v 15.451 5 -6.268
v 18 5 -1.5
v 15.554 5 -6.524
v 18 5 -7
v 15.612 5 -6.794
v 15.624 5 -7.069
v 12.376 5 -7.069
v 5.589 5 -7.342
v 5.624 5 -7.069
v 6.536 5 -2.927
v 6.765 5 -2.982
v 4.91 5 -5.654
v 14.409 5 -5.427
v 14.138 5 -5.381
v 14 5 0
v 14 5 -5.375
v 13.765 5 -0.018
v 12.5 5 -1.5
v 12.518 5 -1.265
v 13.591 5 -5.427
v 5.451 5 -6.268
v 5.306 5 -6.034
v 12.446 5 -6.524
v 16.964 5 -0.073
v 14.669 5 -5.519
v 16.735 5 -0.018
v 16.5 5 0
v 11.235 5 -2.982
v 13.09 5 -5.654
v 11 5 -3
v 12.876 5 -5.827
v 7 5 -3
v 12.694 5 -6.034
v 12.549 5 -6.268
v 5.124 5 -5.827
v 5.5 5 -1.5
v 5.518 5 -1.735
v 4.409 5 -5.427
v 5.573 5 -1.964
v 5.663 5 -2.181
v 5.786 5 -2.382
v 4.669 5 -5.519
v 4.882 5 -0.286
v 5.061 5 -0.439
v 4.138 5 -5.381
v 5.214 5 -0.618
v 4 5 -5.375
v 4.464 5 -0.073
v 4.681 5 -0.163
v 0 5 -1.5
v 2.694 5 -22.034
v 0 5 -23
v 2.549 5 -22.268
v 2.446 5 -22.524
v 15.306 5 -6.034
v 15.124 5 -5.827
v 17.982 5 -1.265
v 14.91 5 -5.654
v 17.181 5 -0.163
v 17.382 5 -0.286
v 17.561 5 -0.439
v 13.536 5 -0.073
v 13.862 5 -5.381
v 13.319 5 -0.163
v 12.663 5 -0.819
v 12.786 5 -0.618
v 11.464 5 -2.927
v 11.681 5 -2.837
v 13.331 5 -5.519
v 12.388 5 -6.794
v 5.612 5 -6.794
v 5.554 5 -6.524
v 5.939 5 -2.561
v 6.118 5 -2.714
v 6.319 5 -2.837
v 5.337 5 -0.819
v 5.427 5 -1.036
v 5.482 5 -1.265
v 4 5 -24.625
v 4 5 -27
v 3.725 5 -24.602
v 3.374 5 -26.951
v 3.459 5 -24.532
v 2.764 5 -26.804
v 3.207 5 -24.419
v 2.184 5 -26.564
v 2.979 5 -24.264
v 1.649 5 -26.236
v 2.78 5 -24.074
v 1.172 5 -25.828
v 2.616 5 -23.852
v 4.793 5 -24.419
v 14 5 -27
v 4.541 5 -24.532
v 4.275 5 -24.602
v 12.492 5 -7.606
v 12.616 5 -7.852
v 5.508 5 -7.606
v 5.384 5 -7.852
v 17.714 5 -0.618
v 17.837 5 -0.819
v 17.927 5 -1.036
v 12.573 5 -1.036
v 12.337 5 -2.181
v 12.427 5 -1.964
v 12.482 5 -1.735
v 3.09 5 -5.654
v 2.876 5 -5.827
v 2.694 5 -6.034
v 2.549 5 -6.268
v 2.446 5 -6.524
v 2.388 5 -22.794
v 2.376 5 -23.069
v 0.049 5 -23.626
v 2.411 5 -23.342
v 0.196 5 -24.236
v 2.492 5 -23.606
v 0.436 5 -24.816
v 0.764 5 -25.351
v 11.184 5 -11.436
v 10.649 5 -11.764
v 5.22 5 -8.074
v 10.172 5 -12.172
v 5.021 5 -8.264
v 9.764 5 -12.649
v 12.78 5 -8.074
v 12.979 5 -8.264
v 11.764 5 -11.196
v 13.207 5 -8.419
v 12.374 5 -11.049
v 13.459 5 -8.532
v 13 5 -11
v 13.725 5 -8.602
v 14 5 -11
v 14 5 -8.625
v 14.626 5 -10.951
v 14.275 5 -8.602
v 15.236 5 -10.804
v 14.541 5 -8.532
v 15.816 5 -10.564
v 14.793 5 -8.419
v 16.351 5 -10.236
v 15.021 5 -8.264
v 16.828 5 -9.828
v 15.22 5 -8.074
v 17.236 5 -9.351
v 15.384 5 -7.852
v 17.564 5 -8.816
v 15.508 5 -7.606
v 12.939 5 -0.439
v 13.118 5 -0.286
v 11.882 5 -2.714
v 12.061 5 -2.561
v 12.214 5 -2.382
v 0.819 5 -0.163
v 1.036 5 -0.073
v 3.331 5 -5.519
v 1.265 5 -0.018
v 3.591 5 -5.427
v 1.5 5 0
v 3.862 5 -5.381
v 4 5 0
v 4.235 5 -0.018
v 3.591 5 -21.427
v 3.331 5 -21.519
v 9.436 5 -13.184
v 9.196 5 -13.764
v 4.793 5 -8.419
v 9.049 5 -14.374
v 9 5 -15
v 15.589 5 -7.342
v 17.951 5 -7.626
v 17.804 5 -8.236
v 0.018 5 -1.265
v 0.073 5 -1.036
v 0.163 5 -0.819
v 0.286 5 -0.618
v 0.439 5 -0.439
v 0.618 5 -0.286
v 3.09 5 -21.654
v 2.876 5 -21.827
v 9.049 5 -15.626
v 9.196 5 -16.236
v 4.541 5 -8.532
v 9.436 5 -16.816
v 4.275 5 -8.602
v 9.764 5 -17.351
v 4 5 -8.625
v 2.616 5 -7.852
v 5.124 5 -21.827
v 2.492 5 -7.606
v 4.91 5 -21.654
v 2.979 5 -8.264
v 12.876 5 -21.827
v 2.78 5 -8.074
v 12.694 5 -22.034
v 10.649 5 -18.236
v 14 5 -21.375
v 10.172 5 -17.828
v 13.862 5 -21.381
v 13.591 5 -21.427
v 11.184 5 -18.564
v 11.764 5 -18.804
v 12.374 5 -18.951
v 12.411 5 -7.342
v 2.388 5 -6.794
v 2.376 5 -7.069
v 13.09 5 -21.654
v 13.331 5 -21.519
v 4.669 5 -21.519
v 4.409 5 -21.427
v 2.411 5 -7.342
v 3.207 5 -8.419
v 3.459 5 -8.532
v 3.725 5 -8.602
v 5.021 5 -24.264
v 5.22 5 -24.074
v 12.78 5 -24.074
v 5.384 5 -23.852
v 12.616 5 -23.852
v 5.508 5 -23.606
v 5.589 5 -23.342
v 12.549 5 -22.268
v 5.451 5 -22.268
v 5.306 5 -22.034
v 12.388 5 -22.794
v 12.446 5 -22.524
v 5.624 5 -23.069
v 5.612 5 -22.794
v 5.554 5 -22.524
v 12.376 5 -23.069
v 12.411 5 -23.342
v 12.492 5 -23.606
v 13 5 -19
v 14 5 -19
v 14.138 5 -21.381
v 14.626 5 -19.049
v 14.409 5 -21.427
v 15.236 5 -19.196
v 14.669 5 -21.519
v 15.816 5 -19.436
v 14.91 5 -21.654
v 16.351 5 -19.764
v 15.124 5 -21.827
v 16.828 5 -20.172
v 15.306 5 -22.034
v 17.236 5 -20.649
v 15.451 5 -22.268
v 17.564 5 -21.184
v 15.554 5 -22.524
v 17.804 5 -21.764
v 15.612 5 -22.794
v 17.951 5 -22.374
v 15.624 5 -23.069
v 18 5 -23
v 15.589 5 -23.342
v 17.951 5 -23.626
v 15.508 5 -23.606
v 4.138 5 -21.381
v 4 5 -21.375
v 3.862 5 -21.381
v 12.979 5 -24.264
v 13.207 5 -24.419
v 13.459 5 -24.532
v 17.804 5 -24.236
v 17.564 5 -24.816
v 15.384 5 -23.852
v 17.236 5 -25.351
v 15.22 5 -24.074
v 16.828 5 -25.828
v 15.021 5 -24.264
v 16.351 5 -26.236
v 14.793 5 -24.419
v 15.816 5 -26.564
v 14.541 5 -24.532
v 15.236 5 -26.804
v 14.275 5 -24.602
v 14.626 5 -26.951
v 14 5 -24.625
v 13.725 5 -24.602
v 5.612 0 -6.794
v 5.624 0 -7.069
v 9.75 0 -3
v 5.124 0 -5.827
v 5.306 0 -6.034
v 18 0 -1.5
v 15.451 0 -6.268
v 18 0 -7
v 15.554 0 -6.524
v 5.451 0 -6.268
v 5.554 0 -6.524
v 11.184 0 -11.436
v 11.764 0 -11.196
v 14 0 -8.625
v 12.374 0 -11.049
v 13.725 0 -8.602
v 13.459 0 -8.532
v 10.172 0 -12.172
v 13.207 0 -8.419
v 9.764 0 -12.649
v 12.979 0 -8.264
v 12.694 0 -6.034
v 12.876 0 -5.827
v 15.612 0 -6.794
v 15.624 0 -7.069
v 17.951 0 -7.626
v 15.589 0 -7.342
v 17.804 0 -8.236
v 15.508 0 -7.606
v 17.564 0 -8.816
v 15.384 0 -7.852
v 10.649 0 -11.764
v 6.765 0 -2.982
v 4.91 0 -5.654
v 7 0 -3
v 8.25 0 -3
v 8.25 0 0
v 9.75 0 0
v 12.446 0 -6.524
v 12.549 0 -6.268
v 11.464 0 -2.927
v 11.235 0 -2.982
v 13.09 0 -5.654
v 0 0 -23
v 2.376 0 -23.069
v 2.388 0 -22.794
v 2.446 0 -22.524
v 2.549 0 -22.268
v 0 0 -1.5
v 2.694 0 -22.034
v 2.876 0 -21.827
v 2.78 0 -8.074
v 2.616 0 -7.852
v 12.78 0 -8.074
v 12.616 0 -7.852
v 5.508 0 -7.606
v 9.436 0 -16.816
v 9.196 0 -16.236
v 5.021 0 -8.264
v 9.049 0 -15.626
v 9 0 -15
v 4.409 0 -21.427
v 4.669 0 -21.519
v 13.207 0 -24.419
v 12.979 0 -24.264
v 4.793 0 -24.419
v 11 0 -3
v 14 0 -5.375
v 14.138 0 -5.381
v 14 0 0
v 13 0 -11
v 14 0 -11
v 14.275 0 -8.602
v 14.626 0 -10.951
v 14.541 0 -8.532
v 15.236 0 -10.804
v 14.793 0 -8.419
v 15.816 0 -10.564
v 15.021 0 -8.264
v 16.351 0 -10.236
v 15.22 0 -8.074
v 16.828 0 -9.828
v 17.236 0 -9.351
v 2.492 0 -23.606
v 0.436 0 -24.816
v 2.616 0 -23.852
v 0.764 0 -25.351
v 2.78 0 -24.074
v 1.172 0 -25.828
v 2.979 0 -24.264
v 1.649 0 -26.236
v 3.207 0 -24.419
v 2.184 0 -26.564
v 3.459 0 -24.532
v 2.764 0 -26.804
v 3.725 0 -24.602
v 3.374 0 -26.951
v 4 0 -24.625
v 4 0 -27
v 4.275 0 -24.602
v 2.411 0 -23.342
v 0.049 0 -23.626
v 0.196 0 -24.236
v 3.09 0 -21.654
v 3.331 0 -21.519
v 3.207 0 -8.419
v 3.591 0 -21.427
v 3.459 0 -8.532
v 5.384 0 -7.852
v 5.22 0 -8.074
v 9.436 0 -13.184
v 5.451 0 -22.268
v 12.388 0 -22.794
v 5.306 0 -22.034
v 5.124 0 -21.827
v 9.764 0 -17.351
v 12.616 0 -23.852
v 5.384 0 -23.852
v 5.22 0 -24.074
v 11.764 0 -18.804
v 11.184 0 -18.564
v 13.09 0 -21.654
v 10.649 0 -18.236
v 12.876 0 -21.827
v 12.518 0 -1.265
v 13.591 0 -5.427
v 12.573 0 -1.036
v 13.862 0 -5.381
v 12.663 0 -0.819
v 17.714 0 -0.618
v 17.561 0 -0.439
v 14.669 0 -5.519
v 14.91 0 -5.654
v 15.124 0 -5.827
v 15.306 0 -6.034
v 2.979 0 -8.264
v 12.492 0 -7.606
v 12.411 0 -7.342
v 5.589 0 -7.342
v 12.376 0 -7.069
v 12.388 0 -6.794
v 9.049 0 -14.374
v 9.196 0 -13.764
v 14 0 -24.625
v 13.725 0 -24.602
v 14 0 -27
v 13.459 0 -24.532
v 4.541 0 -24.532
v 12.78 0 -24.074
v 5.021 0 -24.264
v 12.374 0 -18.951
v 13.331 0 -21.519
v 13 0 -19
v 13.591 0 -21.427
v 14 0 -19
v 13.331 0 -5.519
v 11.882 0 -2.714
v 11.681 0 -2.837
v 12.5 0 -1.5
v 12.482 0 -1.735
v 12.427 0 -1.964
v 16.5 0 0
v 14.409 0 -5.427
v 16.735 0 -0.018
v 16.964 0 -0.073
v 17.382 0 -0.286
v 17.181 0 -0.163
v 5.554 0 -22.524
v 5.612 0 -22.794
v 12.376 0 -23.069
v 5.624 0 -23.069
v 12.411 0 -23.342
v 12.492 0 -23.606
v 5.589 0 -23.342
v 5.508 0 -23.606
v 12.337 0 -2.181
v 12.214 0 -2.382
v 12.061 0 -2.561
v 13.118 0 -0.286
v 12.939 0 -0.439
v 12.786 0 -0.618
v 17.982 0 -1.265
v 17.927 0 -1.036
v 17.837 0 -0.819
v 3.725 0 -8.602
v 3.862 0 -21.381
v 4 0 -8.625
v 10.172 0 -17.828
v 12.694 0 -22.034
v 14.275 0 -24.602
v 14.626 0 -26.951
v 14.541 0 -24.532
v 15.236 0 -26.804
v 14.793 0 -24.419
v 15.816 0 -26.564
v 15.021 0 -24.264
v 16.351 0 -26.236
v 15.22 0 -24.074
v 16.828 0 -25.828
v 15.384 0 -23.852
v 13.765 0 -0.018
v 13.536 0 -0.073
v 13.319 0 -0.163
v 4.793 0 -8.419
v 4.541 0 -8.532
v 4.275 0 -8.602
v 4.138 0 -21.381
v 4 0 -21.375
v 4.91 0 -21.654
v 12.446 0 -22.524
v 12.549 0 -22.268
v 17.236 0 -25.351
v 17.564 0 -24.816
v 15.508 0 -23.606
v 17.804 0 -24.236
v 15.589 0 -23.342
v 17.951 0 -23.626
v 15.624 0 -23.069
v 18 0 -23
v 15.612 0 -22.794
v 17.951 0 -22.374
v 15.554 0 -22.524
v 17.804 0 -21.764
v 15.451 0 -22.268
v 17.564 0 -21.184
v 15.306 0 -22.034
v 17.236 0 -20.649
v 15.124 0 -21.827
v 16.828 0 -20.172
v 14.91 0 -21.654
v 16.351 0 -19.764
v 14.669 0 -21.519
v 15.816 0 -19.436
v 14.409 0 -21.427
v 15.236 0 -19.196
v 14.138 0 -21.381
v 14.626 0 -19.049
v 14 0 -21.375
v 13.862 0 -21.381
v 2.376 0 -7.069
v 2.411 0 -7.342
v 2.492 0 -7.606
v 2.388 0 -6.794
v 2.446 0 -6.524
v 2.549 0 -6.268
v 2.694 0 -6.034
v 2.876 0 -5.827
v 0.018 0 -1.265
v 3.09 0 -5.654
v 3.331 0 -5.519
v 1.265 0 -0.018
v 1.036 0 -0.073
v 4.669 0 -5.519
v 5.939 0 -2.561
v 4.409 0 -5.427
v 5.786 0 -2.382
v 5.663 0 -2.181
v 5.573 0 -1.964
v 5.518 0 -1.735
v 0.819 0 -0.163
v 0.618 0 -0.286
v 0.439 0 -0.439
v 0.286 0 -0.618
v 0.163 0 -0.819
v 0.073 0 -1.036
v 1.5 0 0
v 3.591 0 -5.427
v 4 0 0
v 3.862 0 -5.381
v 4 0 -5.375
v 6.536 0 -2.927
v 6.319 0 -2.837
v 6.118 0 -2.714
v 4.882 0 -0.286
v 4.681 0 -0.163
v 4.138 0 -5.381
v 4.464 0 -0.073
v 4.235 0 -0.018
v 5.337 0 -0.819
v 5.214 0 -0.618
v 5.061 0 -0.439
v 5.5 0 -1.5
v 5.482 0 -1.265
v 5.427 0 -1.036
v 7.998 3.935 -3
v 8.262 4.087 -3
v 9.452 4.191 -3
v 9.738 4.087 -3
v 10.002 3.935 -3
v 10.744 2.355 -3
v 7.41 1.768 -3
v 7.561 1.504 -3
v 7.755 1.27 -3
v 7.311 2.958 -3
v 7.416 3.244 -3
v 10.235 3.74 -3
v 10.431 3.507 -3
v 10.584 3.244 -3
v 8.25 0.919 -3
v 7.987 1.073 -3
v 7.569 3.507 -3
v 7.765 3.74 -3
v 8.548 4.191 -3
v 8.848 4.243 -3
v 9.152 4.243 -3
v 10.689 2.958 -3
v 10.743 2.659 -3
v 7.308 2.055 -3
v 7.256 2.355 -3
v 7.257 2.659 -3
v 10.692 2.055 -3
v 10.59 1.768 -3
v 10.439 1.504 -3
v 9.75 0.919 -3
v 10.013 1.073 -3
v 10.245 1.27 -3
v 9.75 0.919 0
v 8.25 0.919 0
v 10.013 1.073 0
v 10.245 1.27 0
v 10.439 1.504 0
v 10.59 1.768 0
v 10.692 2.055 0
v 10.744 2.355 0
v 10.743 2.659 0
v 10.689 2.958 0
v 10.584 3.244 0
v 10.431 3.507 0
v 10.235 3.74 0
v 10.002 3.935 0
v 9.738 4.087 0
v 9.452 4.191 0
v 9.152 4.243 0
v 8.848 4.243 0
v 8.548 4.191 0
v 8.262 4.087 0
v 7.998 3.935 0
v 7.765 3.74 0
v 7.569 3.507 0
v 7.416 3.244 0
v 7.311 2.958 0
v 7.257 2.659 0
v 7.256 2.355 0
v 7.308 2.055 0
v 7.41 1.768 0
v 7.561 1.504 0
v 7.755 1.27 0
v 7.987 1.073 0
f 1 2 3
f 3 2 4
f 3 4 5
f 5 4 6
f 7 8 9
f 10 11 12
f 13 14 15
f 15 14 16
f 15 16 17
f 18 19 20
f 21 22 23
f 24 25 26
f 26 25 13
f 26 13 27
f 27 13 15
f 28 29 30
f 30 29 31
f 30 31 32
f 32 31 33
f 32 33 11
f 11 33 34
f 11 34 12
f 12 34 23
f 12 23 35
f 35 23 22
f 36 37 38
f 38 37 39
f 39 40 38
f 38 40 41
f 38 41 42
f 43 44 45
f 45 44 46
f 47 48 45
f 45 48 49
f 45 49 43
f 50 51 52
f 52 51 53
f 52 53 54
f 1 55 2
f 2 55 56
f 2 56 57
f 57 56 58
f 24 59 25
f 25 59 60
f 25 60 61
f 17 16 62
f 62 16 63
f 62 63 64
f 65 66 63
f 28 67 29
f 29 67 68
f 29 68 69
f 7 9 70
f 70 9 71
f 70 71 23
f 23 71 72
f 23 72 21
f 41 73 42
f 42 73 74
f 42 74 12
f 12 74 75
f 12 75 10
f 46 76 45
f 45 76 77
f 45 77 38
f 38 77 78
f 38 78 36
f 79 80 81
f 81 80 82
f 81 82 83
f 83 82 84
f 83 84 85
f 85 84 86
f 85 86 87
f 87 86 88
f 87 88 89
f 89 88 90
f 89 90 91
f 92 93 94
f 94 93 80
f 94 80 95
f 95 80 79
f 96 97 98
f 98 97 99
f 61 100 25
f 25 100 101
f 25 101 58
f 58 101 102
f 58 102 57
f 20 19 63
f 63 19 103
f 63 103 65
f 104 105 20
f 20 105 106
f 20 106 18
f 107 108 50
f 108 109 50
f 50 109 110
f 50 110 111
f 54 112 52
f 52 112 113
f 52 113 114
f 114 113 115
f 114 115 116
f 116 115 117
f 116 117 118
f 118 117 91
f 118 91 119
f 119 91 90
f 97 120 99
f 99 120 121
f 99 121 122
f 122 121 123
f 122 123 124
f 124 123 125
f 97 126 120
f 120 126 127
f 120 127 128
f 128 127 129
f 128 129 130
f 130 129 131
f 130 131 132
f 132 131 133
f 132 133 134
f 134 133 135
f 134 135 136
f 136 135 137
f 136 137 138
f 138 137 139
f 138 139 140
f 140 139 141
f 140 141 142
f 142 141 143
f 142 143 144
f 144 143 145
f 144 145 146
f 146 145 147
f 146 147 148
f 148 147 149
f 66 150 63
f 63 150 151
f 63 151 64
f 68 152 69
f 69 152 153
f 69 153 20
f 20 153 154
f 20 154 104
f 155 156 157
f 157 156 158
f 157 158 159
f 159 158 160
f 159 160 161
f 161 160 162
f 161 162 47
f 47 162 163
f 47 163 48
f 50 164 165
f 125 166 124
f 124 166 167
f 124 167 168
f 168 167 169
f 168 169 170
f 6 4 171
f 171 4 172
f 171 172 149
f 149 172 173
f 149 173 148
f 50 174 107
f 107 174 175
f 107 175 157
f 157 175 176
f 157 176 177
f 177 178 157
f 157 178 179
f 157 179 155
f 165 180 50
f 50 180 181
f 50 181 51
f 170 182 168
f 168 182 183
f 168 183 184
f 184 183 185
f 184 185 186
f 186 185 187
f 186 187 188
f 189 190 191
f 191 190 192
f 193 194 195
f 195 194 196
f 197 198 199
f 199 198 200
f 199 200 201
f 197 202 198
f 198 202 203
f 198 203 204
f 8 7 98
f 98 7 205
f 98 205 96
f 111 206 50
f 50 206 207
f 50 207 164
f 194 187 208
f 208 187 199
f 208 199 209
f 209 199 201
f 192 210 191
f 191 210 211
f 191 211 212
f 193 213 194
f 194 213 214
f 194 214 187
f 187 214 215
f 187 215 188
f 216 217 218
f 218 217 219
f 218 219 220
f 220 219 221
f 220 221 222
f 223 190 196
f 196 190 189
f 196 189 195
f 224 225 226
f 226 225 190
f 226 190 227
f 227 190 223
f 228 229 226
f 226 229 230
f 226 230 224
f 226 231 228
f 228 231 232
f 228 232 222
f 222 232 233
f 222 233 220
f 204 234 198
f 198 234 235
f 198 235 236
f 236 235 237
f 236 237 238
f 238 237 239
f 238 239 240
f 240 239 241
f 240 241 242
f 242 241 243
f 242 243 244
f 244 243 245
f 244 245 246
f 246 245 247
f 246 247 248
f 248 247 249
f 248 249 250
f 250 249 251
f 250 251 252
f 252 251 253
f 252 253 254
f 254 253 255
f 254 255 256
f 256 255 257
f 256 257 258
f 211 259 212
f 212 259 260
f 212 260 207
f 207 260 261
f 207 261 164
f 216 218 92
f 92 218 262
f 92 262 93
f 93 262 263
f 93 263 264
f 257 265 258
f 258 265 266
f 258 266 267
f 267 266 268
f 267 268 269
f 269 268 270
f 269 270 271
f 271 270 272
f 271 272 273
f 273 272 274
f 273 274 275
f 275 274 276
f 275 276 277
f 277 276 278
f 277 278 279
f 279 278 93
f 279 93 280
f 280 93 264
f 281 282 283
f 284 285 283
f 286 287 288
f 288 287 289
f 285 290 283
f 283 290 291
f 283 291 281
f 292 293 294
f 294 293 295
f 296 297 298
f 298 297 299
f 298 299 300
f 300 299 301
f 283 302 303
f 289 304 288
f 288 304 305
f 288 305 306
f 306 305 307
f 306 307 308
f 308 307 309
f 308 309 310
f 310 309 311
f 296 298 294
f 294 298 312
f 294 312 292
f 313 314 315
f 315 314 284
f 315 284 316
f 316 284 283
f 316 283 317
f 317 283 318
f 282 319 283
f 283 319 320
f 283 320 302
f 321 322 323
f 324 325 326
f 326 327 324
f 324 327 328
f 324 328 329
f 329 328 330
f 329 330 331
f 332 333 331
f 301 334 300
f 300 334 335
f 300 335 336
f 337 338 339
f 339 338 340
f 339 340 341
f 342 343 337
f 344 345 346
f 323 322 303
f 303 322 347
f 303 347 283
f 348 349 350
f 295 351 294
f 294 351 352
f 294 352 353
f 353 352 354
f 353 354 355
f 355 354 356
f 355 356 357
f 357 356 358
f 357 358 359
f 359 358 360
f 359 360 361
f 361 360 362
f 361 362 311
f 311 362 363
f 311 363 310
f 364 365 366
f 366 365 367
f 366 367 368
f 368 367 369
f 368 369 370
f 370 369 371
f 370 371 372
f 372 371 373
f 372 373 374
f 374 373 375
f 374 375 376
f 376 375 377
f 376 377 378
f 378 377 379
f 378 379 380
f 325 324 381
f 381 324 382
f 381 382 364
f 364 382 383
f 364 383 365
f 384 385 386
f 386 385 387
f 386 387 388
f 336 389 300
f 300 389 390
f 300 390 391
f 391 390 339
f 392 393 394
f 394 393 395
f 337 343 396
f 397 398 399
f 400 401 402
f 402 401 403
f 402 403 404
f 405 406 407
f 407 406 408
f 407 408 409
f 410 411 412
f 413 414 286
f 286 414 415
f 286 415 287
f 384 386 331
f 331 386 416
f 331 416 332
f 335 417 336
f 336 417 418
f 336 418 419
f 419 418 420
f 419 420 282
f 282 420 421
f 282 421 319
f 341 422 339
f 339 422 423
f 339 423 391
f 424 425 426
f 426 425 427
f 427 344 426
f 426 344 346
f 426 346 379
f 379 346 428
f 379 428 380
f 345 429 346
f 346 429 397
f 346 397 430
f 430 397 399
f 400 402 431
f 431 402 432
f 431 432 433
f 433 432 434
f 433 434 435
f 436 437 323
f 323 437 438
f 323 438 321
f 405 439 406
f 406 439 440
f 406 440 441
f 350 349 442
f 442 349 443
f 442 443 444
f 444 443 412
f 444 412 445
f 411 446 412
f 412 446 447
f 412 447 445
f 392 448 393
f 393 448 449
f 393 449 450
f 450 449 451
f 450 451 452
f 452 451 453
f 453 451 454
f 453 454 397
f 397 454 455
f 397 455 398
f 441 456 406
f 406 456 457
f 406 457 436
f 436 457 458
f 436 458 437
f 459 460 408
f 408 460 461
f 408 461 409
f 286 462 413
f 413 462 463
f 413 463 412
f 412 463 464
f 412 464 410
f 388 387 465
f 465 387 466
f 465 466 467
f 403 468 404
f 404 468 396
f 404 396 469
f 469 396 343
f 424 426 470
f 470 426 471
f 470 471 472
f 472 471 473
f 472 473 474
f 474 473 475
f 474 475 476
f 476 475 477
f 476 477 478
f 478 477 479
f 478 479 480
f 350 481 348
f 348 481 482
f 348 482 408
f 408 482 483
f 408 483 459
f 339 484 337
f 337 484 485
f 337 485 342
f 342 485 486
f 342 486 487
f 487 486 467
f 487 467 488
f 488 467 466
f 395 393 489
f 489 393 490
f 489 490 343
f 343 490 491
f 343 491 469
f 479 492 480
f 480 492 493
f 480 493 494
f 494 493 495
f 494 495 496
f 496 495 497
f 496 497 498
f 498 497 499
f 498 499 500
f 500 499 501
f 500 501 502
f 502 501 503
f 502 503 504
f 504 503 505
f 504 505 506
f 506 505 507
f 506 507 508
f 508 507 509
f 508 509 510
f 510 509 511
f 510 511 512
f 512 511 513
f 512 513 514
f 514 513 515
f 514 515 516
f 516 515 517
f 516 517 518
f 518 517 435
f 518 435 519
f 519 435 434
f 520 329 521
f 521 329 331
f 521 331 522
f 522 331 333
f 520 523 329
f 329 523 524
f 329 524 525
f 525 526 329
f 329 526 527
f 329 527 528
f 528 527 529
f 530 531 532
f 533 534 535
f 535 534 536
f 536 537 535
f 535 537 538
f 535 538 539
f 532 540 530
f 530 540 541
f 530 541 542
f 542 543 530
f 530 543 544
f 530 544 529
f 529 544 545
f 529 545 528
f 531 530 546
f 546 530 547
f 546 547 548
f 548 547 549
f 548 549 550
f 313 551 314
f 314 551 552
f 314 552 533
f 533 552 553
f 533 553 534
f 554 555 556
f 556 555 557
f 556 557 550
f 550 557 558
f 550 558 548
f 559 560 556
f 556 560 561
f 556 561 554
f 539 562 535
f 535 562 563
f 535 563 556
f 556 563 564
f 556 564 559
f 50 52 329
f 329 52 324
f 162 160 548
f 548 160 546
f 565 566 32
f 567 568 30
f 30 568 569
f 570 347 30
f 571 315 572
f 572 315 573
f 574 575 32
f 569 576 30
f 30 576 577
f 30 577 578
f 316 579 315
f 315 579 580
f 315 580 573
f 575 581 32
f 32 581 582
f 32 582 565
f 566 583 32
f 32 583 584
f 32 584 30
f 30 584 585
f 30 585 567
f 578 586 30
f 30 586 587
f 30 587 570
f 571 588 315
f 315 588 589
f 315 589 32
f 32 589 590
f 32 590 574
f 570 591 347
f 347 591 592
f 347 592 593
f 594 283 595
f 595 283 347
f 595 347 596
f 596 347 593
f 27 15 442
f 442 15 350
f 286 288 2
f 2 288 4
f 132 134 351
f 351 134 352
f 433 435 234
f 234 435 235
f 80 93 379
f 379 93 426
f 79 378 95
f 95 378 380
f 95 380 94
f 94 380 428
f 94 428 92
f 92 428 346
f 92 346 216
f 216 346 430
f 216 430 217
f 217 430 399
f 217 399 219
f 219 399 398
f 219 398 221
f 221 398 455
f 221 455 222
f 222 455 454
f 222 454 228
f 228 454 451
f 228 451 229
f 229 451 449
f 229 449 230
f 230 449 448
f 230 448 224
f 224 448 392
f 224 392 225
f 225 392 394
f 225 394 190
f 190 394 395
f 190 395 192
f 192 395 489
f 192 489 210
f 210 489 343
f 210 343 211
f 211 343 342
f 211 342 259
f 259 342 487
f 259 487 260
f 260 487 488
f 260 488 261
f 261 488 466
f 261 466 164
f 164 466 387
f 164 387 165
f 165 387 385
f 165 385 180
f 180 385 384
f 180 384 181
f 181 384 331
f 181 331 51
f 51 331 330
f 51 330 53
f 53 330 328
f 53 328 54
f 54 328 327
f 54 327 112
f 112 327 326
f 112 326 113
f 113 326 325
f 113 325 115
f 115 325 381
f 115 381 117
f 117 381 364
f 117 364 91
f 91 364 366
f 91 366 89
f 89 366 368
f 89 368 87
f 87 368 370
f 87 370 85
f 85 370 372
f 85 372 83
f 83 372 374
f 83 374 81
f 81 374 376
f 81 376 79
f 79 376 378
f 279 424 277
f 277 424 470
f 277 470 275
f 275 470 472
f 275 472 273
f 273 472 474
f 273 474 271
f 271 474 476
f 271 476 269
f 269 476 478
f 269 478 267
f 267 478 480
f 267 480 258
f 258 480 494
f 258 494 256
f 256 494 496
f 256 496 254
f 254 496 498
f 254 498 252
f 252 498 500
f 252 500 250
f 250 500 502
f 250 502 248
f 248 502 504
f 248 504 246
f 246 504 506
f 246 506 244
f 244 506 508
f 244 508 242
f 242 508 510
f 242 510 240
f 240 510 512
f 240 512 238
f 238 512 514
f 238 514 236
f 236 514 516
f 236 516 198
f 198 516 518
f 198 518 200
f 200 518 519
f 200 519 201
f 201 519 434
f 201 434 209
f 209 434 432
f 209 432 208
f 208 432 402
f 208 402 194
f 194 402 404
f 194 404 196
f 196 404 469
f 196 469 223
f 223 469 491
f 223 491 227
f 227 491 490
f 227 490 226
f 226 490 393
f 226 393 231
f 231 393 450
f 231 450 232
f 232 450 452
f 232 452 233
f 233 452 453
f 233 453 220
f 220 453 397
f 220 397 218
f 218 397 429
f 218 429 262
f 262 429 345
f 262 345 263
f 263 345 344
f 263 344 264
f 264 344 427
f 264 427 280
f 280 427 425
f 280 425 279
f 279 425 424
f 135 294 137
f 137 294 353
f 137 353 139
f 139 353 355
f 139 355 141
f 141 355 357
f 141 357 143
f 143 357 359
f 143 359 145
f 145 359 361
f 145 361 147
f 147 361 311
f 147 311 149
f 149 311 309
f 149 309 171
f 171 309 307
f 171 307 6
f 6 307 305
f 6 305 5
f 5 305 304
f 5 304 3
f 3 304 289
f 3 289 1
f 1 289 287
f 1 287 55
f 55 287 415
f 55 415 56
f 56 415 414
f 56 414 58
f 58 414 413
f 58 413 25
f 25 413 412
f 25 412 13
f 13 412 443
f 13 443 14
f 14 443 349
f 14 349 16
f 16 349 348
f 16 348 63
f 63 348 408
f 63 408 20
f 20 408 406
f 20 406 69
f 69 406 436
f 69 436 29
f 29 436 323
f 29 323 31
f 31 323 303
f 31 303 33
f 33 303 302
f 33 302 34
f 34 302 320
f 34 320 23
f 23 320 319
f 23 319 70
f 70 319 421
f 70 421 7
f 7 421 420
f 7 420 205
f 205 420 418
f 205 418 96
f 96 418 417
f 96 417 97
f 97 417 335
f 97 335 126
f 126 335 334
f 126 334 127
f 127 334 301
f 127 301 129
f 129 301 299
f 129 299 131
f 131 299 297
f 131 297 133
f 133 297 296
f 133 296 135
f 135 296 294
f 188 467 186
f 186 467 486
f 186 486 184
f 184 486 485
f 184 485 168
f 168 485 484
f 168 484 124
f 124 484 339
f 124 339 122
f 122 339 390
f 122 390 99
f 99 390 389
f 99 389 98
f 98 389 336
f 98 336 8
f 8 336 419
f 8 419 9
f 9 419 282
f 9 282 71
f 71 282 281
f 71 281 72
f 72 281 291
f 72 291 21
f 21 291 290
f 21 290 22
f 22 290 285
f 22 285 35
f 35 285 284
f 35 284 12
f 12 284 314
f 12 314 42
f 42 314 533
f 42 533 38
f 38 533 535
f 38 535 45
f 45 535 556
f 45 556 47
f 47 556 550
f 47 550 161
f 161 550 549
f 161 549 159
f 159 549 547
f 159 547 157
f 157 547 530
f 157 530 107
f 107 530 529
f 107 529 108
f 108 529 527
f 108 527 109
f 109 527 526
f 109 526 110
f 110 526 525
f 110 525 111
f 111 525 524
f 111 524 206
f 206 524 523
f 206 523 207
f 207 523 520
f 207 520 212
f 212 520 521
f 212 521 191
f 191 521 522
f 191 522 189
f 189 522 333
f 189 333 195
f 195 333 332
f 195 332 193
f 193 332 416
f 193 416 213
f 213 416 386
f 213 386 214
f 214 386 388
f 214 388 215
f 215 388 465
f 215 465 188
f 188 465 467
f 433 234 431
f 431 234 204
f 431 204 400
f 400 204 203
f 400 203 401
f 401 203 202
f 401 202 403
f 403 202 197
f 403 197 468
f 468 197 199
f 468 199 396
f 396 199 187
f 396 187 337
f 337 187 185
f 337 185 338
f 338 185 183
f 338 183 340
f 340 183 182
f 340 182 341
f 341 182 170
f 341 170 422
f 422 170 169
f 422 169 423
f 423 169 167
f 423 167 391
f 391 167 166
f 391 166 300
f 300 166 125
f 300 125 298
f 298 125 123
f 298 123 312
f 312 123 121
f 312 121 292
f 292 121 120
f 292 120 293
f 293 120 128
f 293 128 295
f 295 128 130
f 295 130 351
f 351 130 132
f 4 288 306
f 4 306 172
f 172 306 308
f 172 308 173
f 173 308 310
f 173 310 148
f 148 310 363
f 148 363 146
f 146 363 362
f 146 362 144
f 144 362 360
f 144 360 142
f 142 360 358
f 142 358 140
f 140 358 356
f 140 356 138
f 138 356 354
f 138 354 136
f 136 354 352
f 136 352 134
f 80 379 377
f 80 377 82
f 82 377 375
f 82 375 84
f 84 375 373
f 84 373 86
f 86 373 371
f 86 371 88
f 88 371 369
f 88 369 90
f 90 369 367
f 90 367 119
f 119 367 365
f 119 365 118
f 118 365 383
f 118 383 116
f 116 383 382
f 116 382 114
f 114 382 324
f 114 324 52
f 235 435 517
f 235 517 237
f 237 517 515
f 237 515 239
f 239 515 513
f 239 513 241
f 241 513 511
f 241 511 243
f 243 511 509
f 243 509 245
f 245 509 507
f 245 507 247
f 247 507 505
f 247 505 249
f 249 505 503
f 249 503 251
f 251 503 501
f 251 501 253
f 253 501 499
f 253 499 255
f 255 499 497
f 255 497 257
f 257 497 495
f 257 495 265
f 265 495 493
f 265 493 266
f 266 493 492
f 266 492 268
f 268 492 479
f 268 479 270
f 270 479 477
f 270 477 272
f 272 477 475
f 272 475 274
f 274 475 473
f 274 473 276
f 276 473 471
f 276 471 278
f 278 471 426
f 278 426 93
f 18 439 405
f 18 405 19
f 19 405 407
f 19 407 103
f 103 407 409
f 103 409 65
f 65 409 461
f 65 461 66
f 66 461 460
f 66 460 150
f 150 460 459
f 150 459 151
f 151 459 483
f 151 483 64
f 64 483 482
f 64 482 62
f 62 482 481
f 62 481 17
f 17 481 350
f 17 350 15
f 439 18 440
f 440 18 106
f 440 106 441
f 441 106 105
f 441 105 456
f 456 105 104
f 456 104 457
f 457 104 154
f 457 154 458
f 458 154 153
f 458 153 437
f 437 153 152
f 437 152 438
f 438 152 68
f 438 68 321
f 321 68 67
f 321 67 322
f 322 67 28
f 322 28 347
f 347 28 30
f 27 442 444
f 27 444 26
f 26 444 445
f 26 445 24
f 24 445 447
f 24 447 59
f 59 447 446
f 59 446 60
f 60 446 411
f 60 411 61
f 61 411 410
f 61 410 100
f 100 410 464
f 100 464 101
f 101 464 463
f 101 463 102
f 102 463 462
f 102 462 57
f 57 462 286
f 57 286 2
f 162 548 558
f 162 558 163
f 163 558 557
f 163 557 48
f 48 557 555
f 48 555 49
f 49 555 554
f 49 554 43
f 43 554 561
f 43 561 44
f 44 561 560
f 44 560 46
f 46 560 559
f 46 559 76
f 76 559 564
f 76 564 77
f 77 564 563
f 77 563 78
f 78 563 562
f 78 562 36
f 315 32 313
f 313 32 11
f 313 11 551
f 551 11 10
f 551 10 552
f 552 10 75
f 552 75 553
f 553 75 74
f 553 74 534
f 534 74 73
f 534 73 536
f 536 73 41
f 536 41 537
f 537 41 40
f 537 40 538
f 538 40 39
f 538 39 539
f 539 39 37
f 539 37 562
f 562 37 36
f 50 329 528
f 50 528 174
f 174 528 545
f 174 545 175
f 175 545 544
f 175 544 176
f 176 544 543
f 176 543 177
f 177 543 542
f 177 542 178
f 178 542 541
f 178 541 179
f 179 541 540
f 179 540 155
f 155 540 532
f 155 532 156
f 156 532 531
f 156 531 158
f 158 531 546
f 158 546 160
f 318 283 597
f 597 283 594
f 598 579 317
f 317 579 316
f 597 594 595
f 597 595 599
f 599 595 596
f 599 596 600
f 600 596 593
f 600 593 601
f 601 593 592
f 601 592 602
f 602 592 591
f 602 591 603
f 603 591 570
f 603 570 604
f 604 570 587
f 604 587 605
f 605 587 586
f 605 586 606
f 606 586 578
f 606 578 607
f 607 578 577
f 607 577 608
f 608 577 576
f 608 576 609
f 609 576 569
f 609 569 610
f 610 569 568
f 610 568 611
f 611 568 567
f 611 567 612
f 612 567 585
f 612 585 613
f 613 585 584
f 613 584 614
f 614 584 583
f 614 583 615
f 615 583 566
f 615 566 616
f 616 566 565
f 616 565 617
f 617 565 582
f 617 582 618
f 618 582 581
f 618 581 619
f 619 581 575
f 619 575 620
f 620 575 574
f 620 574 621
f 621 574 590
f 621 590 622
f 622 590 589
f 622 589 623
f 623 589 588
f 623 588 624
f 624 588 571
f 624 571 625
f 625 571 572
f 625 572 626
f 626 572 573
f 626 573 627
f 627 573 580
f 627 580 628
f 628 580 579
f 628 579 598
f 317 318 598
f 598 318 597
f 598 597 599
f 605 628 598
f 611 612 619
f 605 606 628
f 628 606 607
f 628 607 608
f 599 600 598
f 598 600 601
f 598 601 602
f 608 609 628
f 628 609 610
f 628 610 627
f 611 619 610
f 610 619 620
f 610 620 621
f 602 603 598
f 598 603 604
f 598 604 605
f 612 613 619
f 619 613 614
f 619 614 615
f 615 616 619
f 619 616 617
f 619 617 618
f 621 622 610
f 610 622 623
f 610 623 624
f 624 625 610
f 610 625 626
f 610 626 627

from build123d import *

# Parameters (mm, degrees)
SKETCH1_R           = 1.625
BOSS_EXTRUDE1_DEPTH = 5
FILLET1_R           = 4
FILLET3_R           = 1.5
BOSS_EXTRUDE2_DEPTH = 3


with BuildPart() as part:
    # Sketch1 → Boss-Extrude1 (new body)
    with BuildSketch(Plane(origin=(0, 0, 0), x_dir=(1, 0, 0), z_dir=(0, 1, 0))):
        Polygon((0, 0), (5.5, 0), (5.5, 3), (12.5, 3), (12.5, 0), (18, 0), (18, 11), (9, 11), (9, 19), (18, 19), (18, 27), (0, 27), align=None)
        with Locations(Location((4, 23, 0), (0, 0, 270))):
            Circle(SKETCH1_R, mode=Mode.SUBTRACT)
        with Locations(Location((14, 23, 0), (0, 0, 270))):
            Circle(SKETCH1_R, mode=Mode.SUBTRACT)
        with Locations(Location((14, 7, 0), (0, 0, 270))):
            Circle(SKETCH1_R, mode=Mode.SUBTRACT)
        with Locations(Location((4, 7, 0), (0, 0, 270))):
            Circle(SKETCH1_R, mode=Mode.SUBTRACT)
    extrude(amount=BOSS_EXTRUDE1_DEPTH)

    # Fillet1
    fillet1_edges = [part.edges().sort_by_distance(p)[0] for p in [
        (9, 2.5, -11),
        (9, 2.5, -19),
        (18, 2.5, -11),
        (0, 2.5, -27),
        (18, 2.5, -27),
        (18, 2.5, -19),
    ]]
    fillet(fillet1_edges, radius=FILLET1_R - 0.0001)  # a hair under: the kernel refuses the full size

    # Fillet3
    fillet3_edges = [part.edges().sort_by_distance(p)[0] for p in [
        (12.5, 2.5, -3),
        (18, 2.5, 0),
        (12.5, 2.5, 0),
        (5.5, 2.5, -3),
        (5.5, 2.5, 0),
        (0, 2.5, 0),
    ]]
    fillet(fillet3_edges, radius=FILLET3_R - 0.0001)  # a hair under: the kernel refuses the full size

    # Sketch3 → Boss-Extrude2 (add)
    with BuildSketch(Plane.XY.offset(-3)):
        with BuildLine():
            Line((8.25, 0.91886117), (8.25, 0))
            Line((8.25, 0), (9.75, 0))
            Line((9.75, 0), (9.75, 0.91886117))
            ThreePointArc((9.75, 0.91886117), (9, 4.25), (8.25, 0.91886117))
        make_face()
    extrude(amount=BOSS_EXTRUDE2_DEPTH)


solid = part.part
